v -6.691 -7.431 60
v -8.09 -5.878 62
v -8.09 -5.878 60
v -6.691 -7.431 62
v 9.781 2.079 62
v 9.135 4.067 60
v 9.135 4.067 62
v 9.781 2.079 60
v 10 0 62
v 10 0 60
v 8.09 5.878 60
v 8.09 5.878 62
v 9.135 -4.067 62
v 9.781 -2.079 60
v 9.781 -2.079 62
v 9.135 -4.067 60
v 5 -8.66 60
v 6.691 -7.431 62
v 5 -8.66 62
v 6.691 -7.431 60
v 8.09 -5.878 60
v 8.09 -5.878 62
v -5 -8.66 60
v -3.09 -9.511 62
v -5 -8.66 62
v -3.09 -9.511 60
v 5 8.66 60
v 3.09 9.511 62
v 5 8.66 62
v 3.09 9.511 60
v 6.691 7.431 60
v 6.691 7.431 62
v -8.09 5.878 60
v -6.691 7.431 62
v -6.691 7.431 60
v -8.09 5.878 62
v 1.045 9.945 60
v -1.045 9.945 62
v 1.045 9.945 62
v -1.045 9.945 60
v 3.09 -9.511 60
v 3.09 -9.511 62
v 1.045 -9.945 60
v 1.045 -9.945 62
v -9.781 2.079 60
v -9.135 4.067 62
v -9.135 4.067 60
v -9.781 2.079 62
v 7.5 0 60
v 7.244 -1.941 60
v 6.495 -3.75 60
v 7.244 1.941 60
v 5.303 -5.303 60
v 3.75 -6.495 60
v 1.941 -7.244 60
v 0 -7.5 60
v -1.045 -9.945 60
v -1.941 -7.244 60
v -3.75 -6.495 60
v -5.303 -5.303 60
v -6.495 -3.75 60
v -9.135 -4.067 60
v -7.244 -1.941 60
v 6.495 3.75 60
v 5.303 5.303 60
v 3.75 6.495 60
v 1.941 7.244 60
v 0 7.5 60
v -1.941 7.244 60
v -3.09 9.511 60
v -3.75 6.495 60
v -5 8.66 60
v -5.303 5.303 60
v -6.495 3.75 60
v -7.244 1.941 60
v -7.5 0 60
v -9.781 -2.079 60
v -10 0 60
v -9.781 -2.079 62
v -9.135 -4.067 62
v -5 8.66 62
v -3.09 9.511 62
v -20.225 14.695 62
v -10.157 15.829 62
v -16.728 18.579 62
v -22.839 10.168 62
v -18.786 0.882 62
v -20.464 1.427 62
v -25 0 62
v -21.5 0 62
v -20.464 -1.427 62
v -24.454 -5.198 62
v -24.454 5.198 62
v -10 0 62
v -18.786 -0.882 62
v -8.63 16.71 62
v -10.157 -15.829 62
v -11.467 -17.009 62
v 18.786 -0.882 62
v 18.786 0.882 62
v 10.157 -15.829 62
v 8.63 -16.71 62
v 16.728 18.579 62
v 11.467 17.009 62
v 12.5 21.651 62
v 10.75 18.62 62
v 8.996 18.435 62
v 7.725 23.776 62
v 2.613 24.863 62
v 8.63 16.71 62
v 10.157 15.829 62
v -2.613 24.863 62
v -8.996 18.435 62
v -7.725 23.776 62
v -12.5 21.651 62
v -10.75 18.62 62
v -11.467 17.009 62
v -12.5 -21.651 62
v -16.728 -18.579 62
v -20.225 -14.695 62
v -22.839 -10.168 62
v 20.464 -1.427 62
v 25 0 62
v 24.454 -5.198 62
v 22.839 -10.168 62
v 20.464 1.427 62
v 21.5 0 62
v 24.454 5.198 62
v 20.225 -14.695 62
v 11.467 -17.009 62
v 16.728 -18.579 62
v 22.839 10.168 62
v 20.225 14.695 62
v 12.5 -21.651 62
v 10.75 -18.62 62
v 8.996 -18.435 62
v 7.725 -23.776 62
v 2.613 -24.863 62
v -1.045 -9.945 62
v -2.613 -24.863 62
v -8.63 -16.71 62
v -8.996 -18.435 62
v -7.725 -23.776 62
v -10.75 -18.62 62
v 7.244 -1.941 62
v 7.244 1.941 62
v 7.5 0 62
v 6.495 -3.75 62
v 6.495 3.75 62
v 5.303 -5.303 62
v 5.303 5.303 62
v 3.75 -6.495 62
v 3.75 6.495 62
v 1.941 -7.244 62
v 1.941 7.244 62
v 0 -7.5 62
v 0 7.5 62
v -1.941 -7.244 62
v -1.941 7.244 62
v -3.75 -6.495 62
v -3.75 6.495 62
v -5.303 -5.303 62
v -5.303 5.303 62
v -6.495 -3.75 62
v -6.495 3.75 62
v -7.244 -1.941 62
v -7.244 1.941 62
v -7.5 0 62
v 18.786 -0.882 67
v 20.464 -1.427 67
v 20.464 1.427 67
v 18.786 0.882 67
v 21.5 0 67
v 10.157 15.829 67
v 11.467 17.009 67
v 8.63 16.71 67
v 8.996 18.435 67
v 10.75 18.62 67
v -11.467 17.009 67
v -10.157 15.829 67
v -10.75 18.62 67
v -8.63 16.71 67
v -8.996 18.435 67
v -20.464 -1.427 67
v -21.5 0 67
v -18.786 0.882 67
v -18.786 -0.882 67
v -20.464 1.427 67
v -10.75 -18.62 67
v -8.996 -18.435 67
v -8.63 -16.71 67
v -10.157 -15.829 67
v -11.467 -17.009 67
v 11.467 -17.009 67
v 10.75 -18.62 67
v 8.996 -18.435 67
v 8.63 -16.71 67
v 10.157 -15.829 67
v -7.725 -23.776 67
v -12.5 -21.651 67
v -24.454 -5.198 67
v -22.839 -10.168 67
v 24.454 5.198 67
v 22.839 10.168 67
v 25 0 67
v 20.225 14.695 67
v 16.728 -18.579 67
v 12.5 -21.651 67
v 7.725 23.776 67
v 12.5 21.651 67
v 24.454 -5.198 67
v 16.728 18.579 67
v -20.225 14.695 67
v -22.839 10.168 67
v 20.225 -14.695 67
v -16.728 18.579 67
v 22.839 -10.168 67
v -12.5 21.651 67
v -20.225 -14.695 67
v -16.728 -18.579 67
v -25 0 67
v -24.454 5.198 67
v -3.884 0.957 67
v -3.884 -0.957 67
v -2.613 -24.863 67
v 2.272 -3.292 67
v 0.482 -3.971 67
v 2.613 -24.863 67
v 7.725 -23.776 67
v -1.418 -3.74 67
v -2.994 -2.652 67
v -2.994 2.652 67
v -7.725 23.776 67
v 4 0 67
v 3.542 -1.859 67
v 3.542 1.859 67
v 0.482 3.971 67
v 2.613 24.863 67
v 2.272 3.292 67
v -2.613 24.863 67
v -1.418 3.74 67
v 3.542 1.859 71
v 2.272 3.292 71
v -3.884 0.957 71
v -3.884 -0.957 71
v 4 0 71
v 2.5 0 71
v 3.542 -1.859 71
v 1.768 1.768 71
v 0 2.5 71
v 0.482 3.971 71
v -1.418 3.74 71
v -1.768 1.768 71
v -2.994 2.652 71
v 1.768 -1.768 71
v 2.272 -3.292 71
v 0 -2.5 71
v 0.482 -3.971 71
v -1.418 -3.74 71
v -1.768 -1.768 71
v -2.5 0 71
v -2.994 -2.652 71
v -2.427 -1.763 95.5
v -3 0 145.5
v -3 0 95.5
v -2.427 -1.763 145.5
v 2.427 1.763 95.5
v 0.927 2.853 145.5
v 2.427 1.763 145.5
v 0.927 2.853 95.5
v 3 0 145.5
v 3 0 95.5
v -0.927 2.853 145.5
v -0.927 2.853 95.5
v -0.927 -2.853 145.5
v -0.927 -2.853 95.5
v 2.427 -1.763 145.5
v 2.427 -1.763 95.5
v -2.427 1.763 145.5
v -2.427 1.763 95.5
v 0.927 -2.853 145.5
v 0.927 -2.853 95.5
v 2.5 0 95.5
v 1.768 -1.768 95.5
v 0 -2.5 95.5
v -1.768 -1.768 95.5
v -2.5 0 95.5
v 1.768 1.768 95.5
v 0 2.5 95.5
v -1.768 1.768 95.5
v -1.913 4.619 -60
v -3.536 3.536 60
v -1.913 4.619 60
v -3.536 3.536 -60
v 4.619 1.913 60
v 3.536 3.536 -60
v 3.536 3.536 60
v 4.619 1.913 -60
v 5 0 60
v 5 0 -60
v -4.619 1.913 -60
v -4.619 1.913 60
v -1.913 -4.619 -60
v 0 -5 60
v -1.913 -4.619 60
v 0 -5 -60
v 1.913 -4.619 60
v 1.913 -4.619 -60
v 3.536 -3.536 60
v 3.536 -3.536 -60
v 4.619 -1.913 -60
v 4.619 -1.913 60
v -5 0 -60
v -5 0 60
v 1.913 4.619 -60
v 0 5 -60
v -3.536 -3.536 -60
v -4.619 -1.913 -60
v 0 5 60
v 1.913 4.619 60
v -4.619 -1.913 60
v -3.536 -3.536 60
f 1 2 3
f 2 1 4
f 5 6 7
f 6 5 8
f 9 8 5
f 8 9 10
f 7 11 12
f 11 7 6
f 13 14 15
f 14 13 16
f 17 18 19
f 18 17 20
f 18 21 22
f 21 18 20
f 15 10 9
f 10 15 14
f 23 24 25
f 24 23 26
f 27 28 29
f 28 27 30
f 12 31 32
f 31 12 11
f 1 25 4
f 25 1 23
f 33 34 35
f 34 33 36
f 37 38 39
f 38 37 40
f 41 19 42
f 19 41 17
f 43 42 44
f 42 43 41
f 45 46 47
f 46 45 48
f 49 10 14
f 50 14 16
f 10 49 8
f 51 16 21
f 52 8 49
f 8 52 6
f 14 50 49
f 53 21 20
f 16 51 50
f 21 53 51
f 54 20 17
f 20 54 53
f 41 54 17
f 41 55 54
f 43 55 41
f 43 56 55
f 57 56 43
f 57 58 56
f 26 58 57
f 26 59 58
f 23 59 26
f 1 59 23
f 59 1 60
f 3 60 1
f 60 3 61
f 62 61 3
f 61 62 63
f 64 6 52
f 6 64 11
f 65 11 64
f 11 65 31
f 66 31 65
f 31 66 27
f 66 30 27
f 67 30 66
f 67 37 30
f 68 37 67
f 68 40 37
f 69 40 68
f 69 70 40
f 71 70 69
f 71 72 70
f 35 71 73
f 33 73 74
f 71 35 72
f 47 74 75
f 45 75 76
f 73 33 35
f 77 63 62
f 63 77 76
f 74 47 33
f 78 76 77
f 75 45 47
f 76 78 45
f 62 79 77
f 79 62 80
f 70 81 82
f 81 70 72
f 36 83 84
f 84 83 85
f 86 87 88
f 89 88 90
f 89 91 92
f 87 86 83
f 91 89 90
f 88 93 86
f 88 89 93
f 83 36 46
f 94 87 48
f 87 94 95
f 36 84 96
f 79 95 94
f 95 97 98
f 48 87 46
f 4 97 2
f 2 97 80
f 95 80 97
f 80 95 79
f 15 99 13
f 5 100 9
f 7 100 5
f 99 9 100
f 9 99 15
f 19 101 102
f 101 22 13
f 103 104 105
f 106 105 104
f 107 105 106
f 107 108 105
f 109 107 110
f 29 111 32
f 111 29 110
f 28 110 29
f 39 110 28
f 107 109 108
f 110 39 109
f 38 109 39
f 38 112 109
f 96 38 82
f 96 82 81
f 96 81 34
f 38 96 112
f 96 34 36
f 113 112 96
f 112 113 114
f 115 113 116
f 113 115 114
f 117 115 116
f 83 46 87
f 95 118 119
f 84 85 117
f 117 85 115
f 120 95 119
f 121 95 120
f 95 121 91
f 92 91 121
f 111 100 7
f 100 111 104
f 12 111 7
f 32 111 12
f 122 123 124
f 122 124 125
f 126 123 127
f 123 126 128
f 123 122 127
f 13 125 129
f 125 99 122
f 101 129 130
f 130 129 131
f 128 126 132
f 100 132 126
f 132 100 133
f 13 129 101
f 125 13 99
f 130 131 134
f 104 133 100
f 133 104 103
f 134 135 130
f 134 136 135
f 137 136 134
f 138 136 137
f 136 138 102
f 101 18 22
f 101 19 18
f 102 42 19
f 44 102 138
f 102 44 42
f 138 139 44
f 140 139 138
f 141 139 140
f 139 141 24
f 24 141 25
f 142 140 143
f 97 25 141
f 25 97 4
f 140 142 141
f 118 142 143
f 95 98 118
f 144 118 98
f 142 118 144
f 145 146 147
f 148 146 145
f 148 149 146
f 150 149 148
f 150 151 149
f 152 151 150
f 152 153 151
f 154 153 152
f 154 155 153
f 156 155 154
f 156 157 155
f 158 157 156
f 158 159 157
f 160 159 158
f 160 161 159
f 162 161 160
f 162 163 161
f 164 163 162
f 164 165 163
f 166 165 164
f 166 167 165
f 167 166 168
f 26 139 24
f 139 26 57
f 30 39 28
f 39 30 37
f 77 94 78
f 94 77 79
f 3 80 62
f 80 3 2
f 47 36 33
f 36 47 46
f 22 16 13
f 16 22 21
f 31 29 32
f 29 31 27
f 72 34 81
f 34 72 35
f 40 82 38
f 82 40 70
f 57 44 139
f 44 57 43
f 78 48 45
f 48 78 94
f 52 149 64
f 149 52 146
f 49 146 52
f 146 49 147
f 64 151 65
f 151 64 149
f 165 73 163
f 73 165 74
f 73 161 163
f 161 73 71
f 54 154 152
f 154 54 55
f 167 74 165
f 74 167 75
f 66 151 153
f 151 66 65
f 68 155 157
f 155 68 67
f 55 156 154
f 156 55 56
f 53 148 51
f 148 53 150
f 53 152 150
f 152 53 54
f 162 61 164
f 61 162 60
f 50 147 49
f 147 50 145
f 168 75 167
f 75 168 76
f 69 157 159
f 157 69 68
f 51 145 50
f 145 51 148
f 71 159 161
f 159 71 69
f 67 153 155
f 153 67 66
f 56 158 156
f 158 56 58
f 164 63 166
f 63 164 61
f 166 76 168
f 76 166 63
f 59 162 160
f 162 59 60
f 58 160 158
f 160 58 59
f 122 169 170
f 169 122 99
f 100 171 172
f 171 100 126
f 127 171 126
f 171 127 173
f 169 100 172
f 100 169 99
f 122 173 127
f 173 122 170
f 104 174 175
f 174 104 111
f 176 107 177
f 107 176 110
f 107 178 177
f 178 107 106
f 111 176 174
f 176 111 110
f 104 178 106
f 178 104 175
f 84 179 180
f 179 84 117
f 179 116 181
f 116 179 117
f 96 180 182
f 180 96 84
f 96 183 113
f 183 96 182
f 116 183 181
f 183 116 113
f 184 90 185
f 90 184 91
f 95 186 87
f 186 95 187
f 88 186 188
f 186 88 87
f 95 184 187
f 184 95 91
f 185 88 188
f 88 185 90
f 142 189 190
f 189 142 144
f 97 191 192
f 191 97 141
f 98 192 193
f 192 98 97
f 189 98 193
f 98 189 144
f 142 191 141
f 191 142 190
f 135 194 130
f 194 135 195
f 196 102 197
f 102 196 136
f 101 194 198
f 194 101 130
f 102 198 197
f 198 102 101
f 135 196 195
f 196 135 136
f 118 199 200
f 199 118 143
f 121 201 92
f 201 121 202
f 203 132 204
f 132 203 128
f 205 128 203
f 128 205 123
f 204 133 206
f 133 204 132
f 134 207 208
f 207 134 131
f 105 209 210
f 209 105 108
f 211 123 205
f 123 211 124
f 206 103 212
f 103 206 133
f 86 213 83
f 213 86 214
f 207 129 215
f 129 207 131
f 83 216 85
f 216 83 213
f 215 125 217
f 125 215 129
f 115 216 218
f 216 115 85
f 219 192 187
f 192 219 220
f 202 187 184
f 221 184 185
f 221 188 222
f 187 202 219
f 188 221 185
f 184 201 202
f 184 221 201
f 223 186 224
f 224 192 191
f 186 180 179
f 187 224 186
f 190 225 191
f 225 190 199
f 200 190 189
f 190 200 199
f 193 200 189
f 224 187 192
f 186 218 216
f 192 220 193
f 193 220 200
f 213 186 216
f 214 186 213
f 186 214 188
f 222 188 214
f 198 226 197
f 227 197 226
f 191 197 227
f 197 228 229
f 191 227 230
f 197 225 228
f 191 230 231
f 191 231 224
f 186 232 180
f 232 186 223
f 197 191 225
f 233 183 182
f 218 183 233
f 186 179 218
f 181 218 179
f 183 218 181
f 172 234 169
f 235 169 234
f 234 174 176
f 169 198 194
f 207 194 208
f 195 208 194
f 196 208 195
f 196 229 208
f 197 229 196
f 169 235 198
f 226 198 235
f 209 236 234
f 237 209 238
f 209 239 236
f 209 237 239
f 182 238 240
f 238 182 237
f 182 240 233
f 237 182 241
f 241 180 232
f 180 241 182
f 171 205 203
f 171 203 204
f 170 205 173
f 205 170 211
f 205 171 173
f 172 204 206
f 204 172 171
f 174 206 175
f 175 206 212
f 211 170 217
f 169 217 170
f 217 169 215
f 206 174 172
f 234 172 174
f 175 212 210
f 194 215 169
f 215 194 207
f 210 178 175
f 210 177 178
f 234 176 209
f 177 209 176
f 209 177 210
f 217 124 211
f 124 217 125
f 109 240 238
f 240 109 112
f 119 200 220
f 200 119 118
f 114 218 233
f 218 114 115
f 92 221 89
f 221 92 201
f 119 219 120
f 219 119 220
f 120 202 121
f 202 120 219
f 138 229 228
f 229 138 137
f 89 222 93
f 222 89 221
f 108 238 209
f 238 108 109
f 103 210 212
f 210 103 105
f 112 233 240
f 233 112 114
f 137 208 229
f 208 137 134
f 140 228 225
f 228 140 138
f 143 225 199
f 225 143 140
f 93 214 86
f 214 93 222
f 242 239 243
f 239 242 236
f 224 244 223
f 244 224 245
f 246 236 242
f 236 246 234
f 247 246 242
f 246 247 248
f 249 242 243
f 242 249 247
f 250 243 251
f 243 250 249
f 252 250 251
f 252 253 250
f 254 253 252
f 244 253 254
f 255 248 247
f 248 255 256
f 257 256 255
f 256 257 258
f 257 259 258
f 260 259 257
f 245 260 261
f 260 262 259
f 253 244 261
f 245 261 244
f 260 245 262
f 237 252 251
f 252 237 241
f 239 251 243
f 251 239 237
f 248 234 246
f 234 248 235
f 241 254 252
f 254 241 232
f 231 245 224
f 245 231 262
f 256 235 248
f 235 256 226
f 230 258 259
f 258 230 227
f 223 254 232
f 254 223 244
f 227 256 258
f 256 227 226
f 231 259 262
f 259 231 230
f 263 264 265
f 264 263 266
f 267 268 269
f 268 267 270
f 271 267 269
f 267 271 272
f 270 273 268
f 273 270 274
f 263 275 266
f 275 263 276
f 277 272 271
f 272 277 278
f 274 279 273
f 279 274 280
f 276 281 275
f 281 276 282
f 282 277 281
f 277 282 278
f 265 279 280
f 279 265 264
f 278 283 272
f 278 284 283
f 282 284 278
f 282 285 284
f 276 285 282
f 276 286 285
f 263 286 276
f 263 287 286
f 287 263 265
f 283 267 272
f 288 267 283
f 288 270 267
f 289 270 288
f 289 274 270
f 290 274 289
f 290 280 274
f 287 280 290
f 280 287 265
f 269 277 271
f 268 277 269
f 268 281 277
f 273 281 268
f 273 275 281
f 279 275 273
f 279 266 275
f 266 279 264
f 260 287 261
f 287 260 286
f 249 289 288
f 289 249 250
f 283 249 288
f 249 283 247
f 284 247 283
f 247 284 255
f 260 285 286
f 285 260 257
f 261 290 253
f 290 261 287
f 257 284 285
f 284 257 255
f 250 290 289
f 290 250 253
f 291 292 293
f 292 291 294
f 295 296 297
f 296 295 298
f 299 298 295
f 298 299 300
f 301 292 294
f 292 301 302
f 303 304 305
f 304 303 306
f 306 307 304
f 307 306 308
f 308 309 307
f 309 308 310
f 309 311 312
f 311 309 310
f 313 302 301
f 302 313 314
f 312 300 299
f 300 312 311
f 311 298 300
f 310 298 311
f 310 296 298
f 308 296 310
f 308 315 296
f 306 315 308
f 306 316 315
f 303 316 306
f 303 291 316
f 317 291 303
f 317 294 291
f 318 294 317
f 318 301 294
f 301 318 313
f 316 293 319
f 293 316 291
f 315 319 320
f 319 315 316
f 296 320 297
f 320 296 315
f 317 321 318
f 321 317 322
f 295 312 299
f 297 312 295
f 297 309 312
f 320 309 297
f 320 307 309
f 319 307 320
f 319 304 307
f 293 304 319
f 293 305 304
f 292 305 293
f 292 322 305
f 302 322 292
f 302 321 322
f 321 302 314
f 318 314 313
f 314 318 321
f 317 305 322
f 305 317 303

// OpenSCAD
// Parameters for the central shaft
shaft_length = 120; // Adjusted length of the shaft to match the original model
shaft_diameter = 10; // Diameter remains the same

// Central Shaft
module central_shaft() {
    cylinder(h = shaft_length, d = shaft_diameter, center = true);
}

// Parameters for the spacer ring
spacer_ring_thickness = 2; // Adjusted thickness to make it thinner
spacer_ring_diameter = 20; // Diameter remains the same

// Spacer Ring
module spacer_ring() {
    difference() {
        cylinder(h = spacer_ring_thickness, d = spacer_ring_diameter, center = true);
        cylinder(h = spacer_ring_thickness + 1, d = spacer_ring_diameter - 5, center = true);
    }
}

// Parameters for the flange plate
flange_plate_thickness = 5; // Adjusted thickness to make it thinner
flange_plate_diameter = 50; // Diameter remains the same
bolt_hole_diameter = 3; // Diameter of bolt holes
bolt_hole_count = 6; // Increased number of bolt holes

// Flange Plate
module flange_plate() {
    difference() {
        cylinder(h = flange_plate_thickness, d = flange_plate_diameter, center = true);
        for (i = [0 : 360 / bolt_hole_count : 360 - 360 / bolt_hole_count]) {
            rotate([0, 0, i]) {
                translate([flange_plate_diameter / 2 - 5, 0, 0]) {
                    cylinder(h = flange_plate_thickness + 1, d = bolt_hole_diameter, center = true);
                }
            }
        }
    }
}

// Parameters for the nut
nut_size = 8; // Adjusted size to make it smaller
nut_thickness = 4; // Thickness remains the same

// Nut
module nut() {
    difference() {
        cylinder(h = nut_thickness, d = nut_size, center = true);
        rotate([0, 0, 30]) {
            for (i = [0 : 60 : 300]) {
                rotate([0, 0, i]) {
                    translate([nut_size / 2, 0, 0]) {
                        square([nut_size / 2, nut_size / 2], center = true);
                    }
                }
            }
        }
    }
}

// Parameters for the bolt
bolt_length = 50; // Adjusted length to make it longer
bolt_diameter = 5; // Diameter remains the same
thread_pitch = 1; // Adjusted threading to make it more pronounced

// Bolt
module bolt() {
    union() {
        cylinder(h = bolt_length, d = bolt_diameter, center = true);
        for (z = [0 : thread_pitch : bolt_length - thread_pitch]) {
            translate([0, 0, z]) {
                cylinder(h = thread_pitch, d = bolt_diameter + 1, center = true);
            }
        }
    }
}

// Render the components
translate([0, 0, 0]) {
    central_shaft();
    translate([0, 0, shaft_length / 2 + spacer_ring_thickness / 2]) {
        spacer_ring();
    }
    translate([0, 0, shaft_length / 2 + spacer_ring_thickness + flange_plate_thickness / 2]) {
        flange_plate();
    }
    translate([0, 0, shaft_length / 2 + spacer_ring_thickness + flange_plate_thickness + nut_thickness / 2]) {
        nut();
    }
    translate([0, 0, shaft_length / 2 + spacer_ring_thickness + flange_plate_thickness + nut_thickness + bolt_length / 2]) {
        bolt();
    }
}
